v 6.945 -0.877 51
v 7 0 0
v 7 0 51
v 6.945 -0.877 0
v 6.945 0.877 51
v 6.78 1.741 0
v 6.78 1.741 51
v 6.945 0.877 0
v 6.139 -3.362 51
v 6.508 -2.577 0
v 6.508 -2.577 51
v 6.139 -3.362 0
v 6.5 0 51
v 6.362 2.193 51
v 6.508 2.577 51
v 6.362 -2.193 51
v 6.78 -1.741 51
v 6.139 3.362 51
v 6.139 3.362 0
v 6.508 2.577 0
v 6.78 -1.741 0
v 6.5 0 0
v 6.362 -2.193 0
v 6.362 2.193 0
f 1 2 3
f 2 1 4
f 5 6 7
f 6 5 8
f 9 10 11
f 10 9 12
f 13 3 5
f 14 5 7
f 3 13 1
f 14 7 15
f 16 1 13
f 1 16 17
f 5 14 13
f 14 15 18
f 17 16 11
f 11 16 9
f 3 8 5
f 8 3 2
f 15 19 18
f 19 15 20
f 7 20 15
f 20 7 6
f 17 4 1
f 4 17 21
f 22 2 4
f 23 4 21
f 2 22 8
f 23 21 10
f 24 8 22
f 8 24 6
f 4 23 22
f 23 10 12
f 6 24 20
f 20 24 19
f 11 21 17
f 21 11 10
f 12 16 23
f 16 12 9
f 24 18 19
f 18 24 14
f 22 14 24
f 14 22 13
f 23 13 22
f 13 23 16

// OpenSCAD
$fn = 50;


difference() {
	union() {
		cylinder(h = 51, r = 7.0000000000);
		translate(v = [-14.0000000000, 0, 0]) {
			cylinder(h = 51, r = 7.0000000000);
		}
	}
	union() {
		cylinder(h = 51, r = 3.2500000000);
		cylinder(h = 51, r = 1.8000000000);
		cylinder(h = 51, r = 1.8000000000);
		cylinder(h = 51, r = 1.8000000000);
		translate(v = [-18.5000000000, 0, 0]) {
			hull() {
				translate(v = [-3.7500000000, 0.0000000000, 0]) {
					cylinder(h = 51, r = 7.5000000000);
				}
				translate(v = [3.7500000000, 0.0000000000, 0]) {
					cylinder(h = 51, r = 7.5000000000);
				}
				translate(v = [-3.7500000000, -0.0000000000, 0]) {
					cylinder(h = 51, r = 7.5000000000);
				}
				translate(v = [3.7500000000, -0.0000000000, 0]) {
					cylinder(h = 51, r = 7.5000000000);
				}
			}
		}
		translate(v = [-11.0000000000, 0, 0.0000000000]) {
			cylinder(h = 51, r = 17.5000000000);
		}
	}
}
